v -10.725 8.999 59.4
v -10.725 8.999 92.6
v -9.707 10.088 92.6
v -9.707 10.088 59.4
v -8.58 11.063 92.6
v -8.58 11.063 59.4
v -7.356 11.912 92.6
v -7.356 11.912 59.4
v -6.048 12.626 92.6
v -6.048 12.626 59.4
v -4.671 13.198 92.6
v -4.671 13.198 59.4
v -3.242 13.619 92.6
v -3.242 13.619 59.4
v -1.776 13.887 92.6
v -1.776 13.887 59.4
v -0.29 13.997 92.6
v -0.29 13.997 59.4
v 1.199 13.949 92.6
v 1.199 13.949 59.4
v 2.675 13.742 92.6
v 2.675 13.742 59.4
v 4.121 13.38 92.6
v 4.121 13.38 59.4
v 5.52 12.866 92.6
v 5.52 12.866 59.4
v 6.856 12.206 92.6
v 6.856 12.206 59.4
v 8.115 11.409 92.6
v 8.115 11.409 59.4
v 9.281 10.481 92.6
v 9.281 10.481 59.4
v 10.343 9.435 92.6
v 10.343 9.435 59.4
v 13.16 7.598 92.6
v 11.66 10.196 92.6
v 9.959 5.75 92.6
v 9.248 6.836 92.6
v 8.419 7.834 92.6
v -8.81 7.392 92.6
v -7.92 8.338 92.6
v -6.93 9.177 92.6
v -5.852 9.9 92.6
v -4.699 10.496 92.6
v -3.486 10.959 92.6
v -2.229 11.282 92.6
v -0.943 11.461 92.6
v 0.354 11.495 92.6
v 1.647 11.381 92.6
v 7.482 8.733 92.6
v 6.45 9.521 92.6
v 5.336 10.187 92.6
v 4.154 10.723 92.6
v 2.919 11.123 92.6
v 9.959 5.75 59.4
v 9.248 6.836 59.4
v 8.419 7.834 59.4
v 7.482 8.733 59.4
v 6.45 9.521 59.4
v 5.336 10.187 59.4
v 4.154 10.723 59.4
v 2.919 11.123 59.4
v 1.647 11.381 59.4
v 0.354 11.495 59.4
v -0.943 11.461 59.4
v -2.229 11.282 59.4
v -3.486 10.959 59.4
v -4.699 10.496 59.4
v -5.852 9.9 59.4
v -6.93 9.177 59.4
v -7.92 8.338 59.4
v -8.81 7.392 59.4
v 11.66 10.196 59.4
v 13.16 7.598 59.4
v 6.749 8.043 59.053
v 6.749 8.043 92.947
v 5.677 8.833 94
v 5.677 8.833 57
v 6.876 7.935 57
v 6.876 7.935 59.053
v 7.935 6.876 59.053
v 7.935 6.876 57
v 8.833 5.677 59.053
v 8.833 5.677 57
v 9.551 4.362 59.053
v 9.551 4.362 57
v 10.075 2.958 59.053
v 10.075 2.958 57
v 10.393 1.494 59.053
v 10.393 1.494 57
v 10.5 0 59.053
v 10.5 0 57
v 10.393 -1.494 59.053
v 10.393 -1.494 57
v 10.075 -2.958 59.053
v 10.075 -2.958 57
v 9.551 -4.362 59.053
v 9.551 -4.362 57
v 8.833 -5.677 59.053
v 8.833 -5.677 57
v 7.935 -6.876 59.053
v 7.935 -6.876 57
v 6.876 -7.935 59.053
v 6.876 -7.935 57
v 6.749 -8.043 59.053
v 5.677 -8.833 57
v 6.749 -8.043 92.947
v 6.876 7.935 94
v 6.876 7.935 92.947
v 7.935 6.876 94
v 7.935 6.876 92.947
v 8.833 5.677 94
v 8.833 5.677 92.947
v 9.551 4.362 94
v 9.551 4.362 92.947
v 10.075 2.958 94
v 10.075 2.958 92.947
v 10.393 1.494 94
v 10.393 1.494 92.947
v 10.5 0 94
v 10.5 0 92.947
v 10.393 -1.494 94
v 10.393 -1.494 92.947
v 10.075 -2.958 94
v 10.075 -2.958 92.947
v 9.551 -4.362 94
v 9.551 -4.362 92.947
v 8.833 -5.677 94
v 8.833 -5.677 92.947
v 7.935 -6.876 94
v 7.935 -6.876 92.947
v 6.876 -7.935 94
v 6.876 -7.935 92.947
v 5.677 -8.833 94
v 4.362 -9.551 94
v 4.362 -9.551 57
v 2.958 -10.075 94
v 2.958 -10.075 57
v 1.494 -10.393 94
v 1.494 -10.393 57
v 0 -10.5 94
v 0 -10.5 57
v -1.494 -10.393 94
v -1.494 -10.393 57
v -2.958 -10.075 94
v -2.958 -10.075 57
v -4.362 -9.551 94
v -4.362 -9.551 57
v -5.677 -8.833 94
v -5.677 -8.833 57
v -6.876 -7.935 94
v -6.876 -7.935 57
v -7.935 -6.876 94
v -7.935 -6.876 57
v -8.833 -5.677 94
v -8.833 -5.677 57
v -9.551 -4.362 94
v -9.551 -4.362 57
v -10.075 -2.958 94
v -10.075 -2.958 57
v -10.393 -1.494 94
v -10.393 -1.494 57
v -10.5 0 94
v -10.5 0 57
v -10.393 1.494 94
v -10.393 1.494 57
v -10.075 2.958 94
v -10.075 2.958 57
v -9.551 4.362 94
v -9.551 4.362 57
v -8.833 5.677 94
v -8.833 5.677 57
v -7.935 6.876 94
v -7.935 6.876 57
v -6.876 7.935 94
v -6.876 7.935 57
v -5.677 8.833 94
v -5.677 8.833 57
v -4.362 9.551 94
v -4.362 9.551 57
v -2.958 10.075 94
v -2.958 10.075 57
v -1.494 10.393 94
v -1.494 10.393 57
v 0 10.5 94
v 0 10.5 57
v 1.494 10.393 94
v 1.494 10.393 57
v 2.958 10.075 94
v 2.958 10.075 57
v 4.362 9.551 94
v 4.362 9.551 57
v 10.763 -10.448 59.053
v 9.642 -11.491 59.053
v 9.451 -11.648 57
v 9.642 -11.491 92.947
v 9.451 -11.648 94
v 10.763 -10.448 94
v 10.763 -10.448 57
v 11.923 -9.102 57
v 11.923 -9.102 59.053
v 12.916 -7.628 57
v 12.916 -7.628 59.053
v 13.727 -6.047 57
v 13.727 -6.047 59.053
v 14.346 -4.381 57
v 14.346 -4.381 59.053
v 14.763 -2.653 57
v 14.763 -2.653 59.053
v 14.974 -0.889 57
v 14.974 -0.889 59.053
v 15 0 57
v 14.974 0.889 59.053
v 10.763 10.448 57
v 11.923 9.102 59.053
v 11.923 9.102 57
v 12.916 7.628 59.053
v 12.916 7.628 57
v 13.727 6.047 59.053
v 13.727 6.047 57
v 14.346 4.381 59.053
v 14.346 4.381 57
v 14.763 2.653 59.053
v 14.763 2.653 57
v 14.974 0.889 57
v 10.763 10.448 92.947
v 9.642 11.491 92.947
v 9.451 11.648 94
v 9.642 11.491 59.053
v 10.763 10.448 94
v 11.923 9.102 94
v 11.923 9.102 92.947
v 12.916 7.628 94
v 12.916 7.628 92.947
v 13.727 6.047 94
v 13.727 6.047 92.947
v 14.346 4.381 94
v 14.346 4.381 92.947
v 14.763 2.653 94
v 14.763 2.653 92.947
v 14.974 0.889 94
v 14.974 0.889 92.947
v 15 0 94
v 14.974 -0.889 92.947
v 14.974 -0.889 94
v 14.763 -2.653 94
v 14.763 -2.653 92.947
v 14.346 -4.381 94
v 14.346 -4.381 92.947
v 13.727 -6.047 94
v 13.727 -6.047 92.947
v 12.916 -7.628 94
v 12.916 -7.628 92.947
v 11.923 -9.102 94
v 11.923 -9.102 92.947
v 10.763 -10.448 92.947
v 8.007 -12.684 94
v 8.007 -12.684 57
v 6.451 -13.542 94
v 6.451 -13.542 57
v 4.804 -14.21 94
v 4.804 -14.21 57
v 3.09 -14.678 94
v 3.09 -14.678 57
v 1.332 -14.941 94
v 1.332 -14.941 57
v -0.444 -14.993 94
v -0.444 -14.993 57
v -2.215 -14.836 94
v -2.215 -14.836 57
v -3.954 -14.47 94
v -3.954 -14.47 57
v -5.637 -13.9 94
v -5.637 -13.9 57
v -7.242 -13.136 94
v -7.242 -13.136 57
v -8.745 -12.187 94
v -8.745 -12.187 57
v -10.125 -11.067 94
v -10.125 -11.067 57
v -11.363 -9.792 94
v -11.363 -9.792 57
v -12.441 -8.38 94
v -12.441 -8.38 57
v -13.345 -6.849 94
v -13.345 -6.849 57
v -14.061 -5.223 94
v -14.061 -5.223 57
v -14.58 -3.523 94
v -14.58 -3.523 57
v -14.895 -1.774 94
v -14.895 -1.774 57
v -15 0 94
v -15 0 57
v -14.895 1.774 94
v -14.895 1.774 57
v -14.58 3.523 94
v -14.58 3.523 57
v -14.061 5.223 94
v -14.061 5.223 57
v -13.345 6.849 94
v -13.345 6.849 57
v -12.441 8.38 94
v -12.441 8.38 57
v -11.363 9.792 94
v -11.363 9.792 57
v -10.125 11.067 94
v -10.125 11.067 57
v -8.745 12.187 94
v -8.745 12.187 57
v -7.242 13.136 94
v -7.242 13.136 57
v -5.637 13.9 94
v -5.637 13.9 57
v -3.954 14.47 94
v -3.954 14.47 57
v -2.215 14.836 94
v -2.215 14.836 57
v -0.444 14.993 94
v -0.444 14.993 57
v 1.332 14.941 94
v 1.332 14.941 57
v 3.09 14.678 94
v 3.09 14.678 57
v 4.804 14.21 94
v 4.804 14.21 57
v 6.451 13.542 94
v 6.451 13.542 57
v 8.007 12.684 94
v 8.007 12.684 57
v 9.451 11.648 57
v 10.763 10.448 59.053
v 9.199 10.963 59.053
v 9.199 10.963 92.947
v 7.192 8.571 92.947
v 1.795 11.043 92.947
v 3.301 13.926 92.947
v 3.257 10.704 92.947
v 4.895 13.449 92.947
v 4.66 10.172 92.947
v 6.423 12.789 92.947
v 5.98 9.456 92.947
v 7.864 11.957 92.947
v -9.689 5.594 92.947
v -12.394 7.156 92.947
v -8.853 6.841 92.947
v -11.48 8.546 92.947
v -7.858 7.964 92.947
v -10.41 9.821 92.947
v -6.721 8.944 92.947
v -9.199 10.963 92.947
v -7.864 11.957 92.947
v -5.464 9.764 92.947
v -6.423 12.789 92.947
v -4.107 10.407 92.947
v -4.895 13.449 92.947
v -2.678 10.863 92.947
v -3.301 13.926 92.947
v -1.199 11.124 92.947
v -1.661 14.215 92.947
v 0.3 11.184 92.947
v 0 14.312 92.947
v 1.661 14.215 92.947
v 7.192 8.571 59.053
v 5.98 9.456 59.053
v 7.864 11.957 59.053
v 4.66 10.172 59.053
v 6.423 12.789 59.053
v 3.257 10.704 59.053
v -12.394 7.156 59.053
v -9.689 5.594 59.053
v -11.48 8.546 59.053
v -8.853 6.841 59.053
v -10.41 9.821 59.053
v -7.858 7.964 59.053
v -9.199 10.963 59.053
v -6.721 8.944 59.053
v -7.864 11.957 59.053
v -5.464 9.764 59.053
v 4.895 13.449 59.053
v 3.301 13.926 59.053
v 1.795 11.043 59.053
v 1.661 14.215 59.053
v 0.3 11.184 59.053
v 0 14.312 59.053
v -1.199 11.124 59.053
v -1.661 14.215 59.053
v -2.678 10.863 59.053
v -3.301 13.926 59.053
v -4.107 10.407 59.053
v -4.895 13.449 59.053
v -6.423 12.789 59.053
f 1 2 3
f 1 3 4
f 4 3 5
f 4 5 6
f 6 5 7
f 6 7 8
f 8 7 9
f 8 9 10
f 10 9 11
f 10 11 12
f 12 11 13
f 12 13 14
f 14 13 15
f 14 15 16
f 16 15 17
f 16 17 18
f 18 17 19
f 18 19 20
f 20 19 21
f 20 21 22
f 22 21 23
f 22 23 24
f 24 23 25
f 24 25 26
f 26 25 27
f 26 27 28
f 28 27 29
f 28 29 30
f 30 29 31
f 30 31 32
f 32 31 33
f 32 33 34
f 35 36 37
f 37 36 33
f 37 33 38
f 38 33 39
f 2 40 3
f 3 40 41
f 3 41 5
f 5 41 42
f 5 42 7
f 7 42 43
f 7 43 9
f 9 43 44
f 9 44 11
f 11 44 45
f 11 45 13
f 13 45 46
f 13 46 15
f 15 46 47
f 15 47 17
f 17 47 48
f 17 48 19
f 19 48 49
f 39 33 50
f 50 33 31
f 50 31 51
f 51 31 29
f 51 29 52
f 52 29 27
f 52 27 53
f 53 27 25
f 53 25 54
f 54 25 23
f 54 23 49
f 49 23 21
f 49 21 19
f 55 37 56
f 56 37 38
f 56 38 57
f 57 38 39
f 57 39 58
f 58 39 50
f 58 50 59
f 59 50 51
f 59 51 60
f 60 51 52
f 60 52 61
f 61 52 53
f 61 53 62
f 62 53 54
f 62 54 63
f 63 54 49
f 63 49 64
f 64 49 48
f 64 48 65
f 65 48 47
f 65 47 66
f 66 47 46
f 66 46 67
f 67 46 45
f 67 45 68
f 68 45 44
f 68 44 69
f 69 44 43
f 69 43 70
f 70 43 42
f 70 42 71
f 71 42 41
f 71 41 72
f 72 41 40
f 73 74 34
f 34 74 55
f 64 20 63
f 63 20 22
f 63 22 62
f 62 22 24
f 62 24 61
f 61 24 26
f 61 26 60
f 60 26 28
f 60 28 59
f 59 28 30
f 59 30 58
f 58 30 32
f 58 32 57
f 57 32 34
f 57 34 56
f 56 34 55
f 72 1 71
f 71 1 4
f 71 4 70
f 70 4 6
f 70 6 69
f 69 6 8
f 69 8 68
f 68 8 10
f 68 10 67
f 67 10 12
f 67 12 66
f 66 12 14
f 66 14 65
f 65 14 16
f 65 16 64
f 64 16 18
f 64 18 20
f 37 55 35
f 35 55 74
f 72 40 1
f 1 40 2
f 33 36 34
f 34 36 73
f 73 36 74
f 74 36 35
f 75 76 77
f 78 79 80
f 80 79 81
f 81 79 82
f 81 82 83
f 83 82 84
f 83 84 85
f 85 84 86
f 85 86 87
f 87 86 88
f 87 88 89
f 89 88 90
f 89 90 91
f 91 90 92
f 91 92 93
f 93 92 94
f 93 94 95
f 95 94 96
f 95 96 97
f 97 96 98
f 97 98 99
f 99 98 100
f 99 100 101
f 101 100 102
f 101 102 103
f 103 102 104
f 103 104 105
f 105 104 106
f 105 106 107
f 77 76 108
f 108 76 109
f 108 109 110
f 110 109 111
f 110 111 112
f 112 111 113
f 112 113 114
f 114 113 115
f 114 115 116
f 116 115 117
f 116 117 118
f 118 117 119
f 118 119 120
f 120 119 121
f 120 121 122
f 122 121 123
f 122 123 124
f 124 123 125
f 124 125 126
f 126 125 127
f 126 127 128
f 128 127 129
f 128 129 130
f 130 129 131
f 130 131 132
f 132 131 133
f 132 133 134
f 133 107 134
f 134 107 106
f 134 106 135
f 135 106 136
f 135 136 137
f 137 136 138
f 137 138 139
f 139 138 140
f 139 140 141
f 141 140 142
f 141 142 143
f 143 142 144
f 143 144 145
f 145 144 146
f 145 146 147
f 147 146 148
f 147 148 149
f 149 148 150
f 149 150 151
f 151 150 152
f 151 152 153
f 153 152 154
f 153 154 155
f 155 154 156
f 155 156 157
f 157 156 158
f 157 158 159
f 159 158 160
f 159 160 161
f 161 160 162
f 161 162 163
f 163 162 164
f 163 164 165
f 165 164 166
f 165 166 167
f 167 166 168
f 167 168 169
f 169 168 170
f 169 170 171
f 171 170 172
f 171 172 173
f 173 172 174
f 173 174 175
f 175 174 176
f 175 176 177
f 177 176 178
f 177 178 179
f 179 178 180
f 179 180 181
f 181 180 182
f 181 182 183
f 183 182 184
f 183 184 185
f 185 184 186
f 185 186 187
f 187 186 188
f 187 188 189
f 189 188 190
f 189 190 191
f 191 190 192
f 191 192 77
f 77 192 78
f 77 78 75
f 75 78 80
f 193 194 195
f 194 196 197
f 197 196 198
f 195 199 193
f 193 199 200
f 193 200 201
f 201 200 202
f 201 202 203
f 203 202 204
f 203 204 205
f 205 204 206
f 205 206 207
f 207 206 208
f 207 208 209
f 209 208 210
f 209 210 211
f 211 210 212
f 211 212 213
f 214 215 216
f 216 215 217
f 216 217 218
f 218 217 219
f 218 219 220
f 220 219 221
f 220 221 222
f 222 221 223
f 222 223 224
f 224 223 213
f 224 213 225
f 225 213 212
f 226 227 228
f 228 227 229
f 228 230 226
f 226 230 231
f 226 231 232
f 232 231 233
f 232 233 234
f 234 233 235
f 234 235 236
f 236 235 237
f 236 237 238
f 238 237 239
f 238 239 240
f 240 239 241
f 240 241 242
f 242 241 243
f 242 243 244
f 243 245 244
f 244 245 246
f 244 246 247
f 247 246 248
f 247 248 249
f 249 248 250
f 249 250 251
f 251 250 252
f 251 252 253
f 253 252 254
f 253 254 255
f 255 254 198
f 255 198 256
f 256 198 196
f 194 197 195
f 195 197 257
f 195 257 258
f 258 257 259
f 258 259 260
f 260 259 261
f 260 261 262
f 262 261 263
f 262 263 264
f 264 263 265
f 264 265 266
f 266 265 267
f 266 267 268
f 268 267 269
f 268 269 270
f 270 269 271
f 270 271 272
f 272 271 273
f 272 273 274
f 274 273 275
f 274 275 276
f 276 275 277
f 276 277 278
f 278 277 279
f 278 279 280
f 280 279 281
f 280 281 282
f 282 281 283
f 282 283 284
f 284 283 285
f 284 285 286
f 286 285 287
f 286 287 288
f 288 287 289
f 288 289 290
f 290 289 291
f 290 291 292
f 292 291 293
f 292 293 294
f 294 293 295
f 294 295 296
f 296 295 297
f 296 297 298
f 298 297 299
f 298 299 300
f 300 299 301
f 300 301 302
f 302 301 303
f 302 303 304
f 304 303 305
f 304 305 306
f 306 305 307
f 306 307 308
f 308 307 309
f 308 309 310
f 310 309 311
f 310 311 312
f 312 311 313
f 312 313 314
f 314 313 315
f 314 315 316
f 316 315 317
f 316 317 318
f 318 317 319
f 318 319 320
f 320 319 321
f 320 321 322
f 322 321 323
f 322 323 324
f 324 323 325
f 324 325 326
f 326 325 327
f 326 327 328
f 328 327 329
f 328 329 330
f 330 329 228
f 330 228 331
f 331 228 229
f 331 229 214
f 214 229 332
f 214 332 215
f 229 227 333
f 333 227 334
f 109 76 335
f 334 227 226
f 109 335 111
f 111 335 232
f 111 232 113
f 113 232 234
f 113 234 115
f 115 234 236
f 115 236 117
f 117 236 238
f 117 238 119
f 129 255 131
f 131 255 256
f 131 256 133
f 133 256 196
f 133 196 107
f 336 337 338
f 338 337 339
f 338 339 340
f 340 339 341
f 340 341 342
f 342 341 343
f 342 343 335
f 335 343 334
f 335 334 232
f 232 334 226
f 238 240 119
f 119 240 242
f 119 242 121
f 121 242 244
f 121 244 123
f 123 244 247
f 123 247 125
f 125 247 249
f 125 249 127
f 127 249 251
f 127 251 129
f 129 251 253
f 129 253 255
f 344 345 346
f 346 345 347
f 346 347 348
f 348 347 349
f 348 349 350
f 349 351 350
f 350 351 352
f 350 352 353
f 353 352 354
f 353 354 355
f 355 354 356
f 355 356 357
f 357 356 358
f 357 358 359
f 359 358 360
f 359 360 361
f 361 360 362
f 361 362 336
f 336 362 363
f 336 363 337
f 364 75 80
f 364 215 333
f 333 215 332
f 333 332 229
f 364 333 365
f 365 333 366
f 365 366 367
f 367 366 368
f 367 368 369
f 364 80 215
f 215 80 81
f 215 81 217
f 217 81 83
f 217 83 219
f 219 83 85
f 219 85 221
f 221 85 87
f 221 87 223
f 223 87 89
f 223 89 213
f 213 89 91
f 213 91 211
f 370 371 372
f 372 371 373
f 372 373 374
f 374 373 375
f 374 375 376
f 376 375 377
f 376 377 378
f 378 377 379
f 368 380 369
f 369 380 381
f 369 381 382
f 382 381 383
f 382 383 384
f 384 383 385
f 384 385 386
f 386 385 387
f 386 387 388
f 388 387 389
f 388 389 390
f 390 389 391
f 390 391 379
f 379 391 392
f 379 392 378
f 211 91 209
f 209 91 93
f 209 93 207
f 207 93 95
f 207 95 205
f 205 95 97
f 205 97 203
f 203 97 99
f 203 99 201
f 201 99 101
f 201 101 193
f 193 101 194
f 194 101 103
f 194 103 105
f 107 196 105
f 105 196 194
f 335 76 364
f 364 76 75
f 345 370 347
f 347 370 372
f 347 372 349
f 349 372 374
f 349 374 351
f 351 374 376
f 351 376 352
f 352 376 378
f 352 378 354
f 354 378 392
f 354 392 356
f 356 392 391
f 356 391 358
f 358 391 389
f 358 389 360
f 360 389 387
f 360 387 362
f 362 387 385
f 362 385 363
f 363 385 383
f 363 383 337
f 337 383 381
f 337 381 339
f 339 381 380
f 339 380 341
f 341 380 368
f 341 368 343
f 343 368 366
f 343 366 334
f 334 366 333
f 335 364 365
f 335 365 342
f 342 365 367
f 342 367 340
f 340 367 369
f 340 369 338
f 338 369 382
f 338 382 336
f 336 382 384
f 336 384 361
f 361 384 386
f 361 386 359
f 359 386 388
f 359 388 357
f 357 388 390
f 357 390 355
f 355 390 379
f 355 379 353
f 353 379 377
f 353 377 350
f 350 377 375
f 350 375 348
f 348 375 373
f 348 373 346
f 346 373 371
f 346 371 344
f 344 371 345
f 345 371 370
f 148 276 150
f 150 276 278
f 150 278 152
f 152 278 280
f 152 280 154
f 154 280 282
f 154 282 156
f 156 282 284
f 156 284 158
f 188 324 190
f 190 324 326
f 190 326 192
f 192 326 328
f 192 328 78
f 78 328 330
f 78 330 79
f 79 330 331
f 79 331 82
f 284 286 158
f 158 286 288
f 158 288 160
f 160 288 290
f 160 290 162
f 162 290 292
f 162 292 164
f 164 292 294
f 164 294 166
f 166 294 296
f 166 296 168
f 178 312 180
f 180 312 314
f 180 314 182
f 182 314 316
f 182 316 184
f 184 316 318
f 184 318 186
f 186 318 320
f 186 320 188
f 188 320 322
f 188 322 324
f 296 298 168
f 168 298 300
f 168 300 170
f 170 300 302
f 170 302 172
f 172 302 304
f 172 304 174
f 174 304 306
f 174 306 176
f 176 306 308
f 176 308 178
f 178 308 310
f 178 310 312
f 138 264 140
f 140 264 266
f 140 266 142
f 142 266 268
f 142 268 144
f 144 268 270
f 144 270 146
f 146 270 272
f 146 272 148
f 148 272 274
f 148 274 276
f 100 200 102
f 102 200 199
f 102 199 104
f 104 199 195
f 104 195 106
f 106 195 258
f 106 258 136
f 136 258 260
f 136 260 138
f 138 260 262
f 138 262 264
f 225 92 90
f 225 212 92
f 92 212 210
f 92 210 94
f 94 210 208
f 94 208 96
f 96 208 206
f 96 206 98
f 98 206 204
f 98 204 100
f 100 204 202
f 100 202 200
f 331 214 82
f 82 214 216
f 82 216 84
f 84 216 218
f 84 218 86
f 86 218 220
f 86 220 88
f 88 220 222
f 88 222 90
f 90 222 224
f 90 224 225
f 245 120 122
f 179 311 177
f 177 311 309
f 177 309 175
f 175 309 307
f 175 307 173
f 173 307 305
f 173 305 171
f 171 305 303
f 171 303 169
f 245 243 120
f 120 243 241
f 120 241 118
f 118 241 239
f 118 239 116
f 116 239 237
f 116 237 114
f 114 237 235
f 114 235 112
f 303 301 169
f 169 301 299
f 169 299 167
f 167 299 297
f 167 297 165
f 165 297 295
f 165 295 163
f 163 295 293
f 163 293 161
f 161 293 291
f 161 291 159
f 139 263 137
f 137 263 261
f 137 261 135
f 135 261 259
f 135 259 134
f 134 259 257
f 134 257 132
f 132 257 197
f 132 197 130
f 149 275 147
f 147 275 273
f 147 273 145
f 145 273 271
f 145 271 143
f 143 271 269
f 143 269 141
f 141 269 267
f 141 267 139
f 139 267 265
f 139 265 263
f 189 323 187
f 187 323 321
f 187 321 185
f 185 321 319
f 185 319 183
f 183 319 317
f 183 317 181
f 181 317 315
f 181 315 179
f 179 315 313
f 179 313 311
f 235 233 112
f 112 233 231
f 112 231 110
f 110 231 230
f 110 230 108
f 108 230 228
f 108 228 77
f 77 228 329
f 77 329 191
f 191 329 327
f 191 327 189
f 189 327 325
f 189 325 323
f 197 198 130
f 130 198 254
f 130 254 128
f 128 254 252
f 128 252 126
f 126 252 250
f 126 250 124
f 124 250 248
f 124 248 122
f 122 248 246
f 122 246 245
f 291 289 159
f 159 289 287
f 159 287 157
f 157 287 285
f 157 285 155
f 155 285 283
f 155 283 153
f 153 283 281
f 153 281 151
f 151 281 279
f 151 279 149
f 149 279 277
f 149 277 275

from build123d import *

# Parameters (mm, degrees)
ESQUISSE1_R                                   = 15
ESQUISSE1_R_2                                 = 10.5
BOSS_EXTRU_3_DEPTH                            = 100
ESQUISSE9_W                                   = 5
ESQUISSE9_H                                   = 2
ENL_VEMENT_START                              = 10
ENL_VEMENT_DE_MATI_RE_R_VOLUTION2_DEPTH       = 5
R_P_TITION_CIRCULAIRE1_COUNT                  = 4
ESQUISSE11_R                                  = 2
ESQUISSE12_W                                  = 4
ESQUISSE12_H                                  = 5
ESQUISSE13_W                                  = 3
ESQUISSE13_H                                  = 5
CONG_2_R                                      = 1
CONG_3_R                                      = 1
CONG_4_R                                      = 1
CONG_5_R                                      = 1
ENL_V_MAT_EXTRU_2_DEPTH                       = 103.824588457
ENL_V_MAT_EXTRU_2_DEPTH_BACK                  = 103.824588457
ESQUISSE16_R                                  = 1.75
ESQUISSE19_W                                  = 13.434398634
ESQUISSE19_H                                  = 33.894617108
ENL_VEMENT_DE_MATI_RE_R_VOLUTION4_ANGLE       = 50
ENL_VEMENT_DE_MATI_RE_R_VOLUTION4_OTHER_ANGLE = 50
ESQUISSE20_W                                  = 33.894617108
ESQUISSE20_H                                  = 2.5
ESQUISSE25_R                                  = 1.75
ENL_V_MAT_EXTRU_3_DEPTH                       = 103.824588457
BOSS_EXTRU_4_REACH                            = 65.719
ESQUISSE29_W                                  = 33.894617108
ESQUISSE29_H                                  = 3.1234995
ENL_VEMENT_DE_MATI_RE_R_VOLUTION7_ANGLE       = 100
ESQUISSE32_W                                  = 33.2
ESQUISSE32_H                                  = 2.5
R_VOLUTION4_ANGLE                             = 20
R_VOLUTION4_OTHER_WAY_ANGLE                   = 90
BOSS_EXTRU_5_DEPTH                            = 2
BOSS_EXTRU_5_DEPTH_BACK                       = 1
ESQUISSE34_W                                  = 3
ESQUISSE34_H                                  = 33.2
ESQUISSE35_R                                  = 19
BOSS_EXTRU_6_DEPTH                            = 10
ESQUISSE36_R                                  = 10
ESQUISSE36_R_2                                = 7.5
BOSS_EXTRU_7_DEPTH                            = 50
ESQUISSE39_R                                  = 5
BOSS_EXTRU_8_DEPTH                            = 21
ESQUISSE41_R                                  = 23.968073598
ENL_V_MAT_EXTRU_4_DEPTH                       = 57
ESQUISSE42_R                                  = 25.631074034
ENL_V_MAT_EXTRU_5_DEPTH                       = 66


# Read off the part's stored shape, not the designer's step: Enlèvement de matière-Révolution2
with BuildPart() as part:
    # Esquisse1 → Boss.-Extru.3 (new body)
    with BuildSketch(Plane.XY):
        Circle(ESQUISSE1_R)
        Circle(ESQUISSE1_R_2, mode=Mode.SUBTRACT)
    extrude(amount=BOSS_EXTRU_3_DEPTH)

    # Esquisse9 → Enlèvement de matière-Révolution1 (revolve, cut)
    with BuildSketch(Plane(origin=(0, 0, 0), x_dir=(0, 0, -1), z_dir=(1, 0, 0)), mode=Mode.PRIVATE) as enl_vement_de_mati_re_r_volution1_sk:
        with Locations((-7.5, -15)):
            Rectangle(ESQUISSE9_W, ESQUISSE9_H)
    revolve(enl_vement_de_mati_re_r_volution1_sk.sketch.rotate(Axis((0, 0, 100), (0, 0, -1)), 270), axis=Axis((0, 0, 100), (0, 0, -1)), mode=Mode.SUBTRACT)

    # Enlèvement de matière-Révolution2 outlin → Enlèvement de matière-Révolution2 (cut)
    with BuildSketch(Plane.XY.offset(ENL_VEMENT_START)):
        with BuildLine():
            Line((-2.431074487, -13.787308542), (-2.604722665, -14.772116295))
            ThreePointArc((-2.604722665, -14.772116295), (0, -15), (2.604722665, -14.772116295))
            Line((2.604722665, -14.772116295), (2.431074487, -13.787308542))
            ThreePointArc((2.431074487, -13.787308542), (0, -14), (-2.431074487, -13.787308542))
        make_face()
    enl_vement_de_mati_re_r_volution2 = extrude(amount=ENL_VEMENT_DE_MATI_RE_R_VOLUTION2_DEPTH, mode=Mode.SUBTRACT)

    # Répétition circulaire1: Enlèvement de matière-Révolution2 ×4 about axis
    r_p_tition_circulaire1_axis = Axis((0, 0, 0), (0, 0, 1))
    for i in range(1, R_P_TITION_CIRCULAIRE1_COUNT):
        add(enl_vement_de_mati_re_r_volution2.rotate(r_p_tition_circulaire1_axis, i * 360 / R_P_TITION_CIRCULAIRE1_COUNT), mode=Mode.SUBTRACT)

    # Esquisse11 → Enlèvement de matière-Révolution3 (revolve, cut)
    with BuildSketch(Plane(origin=(0, 0, 0), x_dir=(1, 0, 0), z_dir=(0, 1, 0)), mode=Mode.PRIVATE) as enl_vement_de_mati_re_r_volution3_sk:
        with Locations((15, -50)):
            Circle(ESQUISSE11_R)
    revolve(enl_vement_de_mati_re_r_volution3_sk.sketch.rotate(Axis((0, 0, 100), (0, 0, -1)), 190), axis=Axis((0, 0, 100), (0, 0, -1)), mode=Mode.SUBTRACT)

    # Esquisse12 → Révolution1 (revolve)
    with BuildSketch(Plane(origin=(0, 0, 0), x_dir=(1, 0, 0), z_dir=(0, 1, 0))):
        with Locations((14.924774562, -54.5)):
            Rectangle(ESQUISSE12_W, ESQUISSE12_H)
    revolve(axis=Axis((0, 0, 100), (0, 0, -1)))

    # Esquisse13 → Révolution2 (revolve)
    with BuildSketch(Plane(origin=(0, 0, 0), x_dir=(1, 0, 0), z_dir=(0, 1, 0)), mode=Mode.PRIVATE) as r_volution2_sk:
        with Locations((15, -97.5)):
            Rectangle(ESQUISSE13_W, ESQUISSE13_H)
    revolve(r_volution2_sk.sketch.rotate(Axis((0, 0, 100), (0, 0, -1)), 190), axis=Axis((0, 0, 100), (0, 0, -1)))

    # Congé2
    cong_2_edges = [part.edges().sort_by_distance(p)[0] for p in [
        (-16.924774562, 0, 52),
    ]]
    fillet(cong_2_edges, radius=CONG_2_R)

    # Congé3
    cong_3_edges = [part.edges().sort_by_distance(p)[0] for p in [
        (-16.924774562, 0, 57),
    ]]
    fillet(cong_3_edges, radius=CONG_3_R)

    # Congé4
    cong_4_edges = [part.edges().sort_by_distance(p)[0] for p in [
        (16.249327925, -2.865194932, 95),
        (16.249327925, -2.865194932, 100),
    ]]
    fillet(cong_4_edges, radius=CONG_4_R)

    # Congé5
    cong_5_edges = [part.edges().sort_by_distance(p)[0] for p in [
        (-1.307336141, -14.942920471, 48),
    ]]
    fillet(cong_5_edges, radius=CONG_5_R)

    # Esquisse16 → Enlèv. mat.-Extru.2 (cut, two sides: drawn at the far end of the back side and taken through both)
    with BuildSketch(Plane(origin=(0, 0, 0), x_dir=(0, 0, -1), z_dir=(1, 0, 0)).offset(-ENL_V_MAT_EXTRU_2_DEPTH_BACK)):
        with Locations((-12.5, 0)):
            Circle(ESQUISSE16_R)
    extrude(amount=ENL_V_MAT_EXTRU_2_DEPTH + ENL_V_MAT_EXTRU_2_DEPTH_BACK, mode=Mode.SUBTRACT)

    # Esquisse19 → Enlèvement de matière-Révolution4 (revolve, cut)
    with BuildSketch(Plane(origin=(0, 0, 0), x_dir=(1, 0, 0), z_dir=(0, 1, 0))):
        with Locations((15, -76)):
            Rectangle(ESQUISSE19_W, ESQUISSE19_H)
    revolve(axis=Axis((0, 0, 100), (0, 0, -1)), revolution_arc=ENL_VEMENT_DE_MATI_RE_R_VOLUTION4_ANGLE, mode=Mode.SUBTRACT)

    # Esquisse19 → Enlèvement de matière-Révolution4 other (revolve, cut)
    with BuildSketch(Plane(origin=(0, 0, 0), x_dir=(1, 0, 0), z_dir=(0, 1, 0))):
        with Locations((15, -76)):
            Rectangle(ESQUISSE19_W, ESQUISSE19_H)
    revolve(axis=Axis((0, 0, 100), (0, 0, 1)), revolution_arc=ENL_VEMENT_DE_MATI_RE_R_VOLUTION4_OTHER_ANGLE, mode=Mode.SUBTRACT)

    # Esquisse20 → Enlèvement de matière-Révolution5 (revolve, cut)
    with BuildSketch(Plane(origin=(0, 0, 0), x_dir=(0, 0, -1), z_dir=(0.7660444431189792, 0.642787609686538, 0)), mode=Mode.PRIVATE) as enl_vement_de_mati_re_r_volution5_sk:
        with Locations((-76, -10.5)):
            Rectangle(ESQUISSE20_W, ESQUISSE20_H)
    revolve(enl_vement_de_mati_re_r_volution5_sk.sketch.rotate(Axis((0, 0, 100), (0, 0, -1)), 140), axis=Axis((0, 0, 100), (0, 0, -1)), mode=Mode.SUBTRACT)

    # Esquisse25 → Enlèv. mat.-Extru.3 (cut, through all)
    with BuildSketch(Plane(origin=(0, 0, 0), x_dir=(0, 0, -1), z_dir=(1, 0, 0))):
        with Locations(Location((-97.5, 0, 0), (0, 0, 180))):
            Circle(ESQUISSE25_R)
        with Locations(Location((-54.5, 0, 0), (0, 0, 180))):
            Circle(ESQUISSE25_R)
    extrude(amount=ENL_V_MAT_EXTRU_3_DEPTH, mode=Mode.SUBTRACT)

    # Esquisse28 → Boss.-Extru.4 (add, up to next)
    with BuildSketch(Plane.XY.offset(59.052691446), mode=Mode.PRIVATE) as boss_extru_4_sk1:
        with BuildLine():
            Line((6.749269902, 8.043466653), (7.552754414, 9.001022207))
            ThreePointArc((7.552754414, 9.001022207), (-11.75, 0), (7.552754414, -9.001022207))
            Line((7.552754414, -9.001022207), (6.749269902, -8.043466653))
            ThreePointArc((6.749269902, -8.043466653), (-10.5, 0), (6.749269902, 8.043466653))
        make_face()
    boss_extru_4_tool1 = extrude(boss_extru_4_sk1.sketch, amount=BOSS_EXTRU_4_REACH, mode=Mode.PRIVATE) - part.part
    add(boss_extru_4_tool1.solids().sort_by_distance((-10.804113, 0, 59.052691))[0])

    # Esquisse29 → Enlèvement de matière-Révolution7 (revolve, cut)
    with BuildSketch(Plane(origin=(0, 0, 0), x_dir=(0, 0, -1), z_dir=(0.7660444431189792, -0.6427876096865379, 0))):
        with Locations((-76, 12.75)):
            Rectangle(ESQUISSE29_W, ESQUISSE29_H)
    revolve(axis=Axis((0, 0, 100), (0, 0, 1)), revolution_arc=ENL_VEMENT_DE_MATI_RE_R_VOLUTION7_ANGLE, mode=Mode.SUBTRACT)

    # Esquisse35 → Boss.-Extru.6 (add)
    with BuildSketch(Plane.XY.offset(100)):
        Circle(ESQUISSE35_R)
    extrude(amount=BOSS_EXTRU_6_DEPTH)

    # Esquisse36 → Boss.-Extru.7 (add)
    with BuildSketch(Plane.XY.offset(110)):
        Circle(ESQUISSE36_R)
        Circle(ESQUISSE36_R_2, mode=Mode.SUBTRACT)
    extrude(amount=BOSS_EXTRU_7_DEPTH)

    # Esquisse39 → Boss.-Extru.8 (add)
    with BuildSketch(Plane(origin=(0, 0, 0), x_dir=(0, 0, -1), z_dir=(1, 0, 0))):
        with Locations((-105, 0)):
            Circle(ESQUISSE39_R)
    extrude(amount=BOSS_EXTRU_8_DEPTH)

    # Esquisse40 → Enlèvement de matière-Révolution9 (revolve, cut)
    with BuildSketch(Plane(origin=(21, 0, 0), x_dir=(0, 0, -1), z_dir=(1, 0, 0))):
        with BuildLine():
            Line((-107.5, 0), (-102.5, 0))
            ThreePointArc((-102.5, 0), (-105, -2.5), (-107.5, 0))
        make_face()
    revolve(axis=Axis((21, 0, 107.5), (0, 0, -1)), mode=Mode.SUBTRACT)

    # Esquisse41 → Enlèv. mat.-Extru.4 (cut)
    with BuildSketch(Plane.XY):
        Circle(ESQUISSE41_R)
    extrude(amount=ENL_V_MAT_EXTRU_4_DEPTH, mode=Mode.SUBTRACT)

    # Esquisse42 → Enlèv. mat.-Extru.5 (cut)
    with BuildSketch(Plane.XY.offset(160)):
        Circle(ESQUISSE42_R)
    extrude(amount=-ENL_V_MAT_EXTRU_5_DEPTH, mode=Mode.SUBTRACT)


with BuildPart() as body_2:
    # Esquisse32 → Révolution4 (revolve)
    with BuildSketch(Plane(origin=(0, 0, 0), x_dir=(0, 0, -1), z_dir=(0.7660444431189792, -0.6427876096865379, 0))):
        with Locations((-76, 12.75)):
            Rectangle(ESQUISSE32_W, ESQUISSE32_H)
    revolve(axis=Axis((0, 0, 100), (0, 0, -1)), revolution_arc=R_VOLUTION4_ANGLE)

    # Esquisse32 → Révolution4 other way (revolve)
    with BuildSketch(Plane(origin=(0, 0, 0), x_dir=(0, 0, -1), z_dir=(0.7660444431189792, -0.6427876096865379, 0))):
        with Locations((-76, 12.75)):
            Rectangle(ESQUISSE32_W, ESQUISSE32_H)
    revolve(axis=Axis((0, 0, 100), (0, 0, 1)), revolution_arc=R_VOLUTION4_OTHER_WAY_ANGLE)

    # Esquisse34 → Boss.-Extru.5 (add, two sides: drawn at the far end of the back side and taken through both)
    with BuildSketch(Plane(origin=(11.428132998, 6.598035663, 0), x_dir=(-0.5000000000000011, 0.8660254037844382, -9.071134608832366e-15), z_dir=(0.8660254037844382, 0.5000000000000011, 1.7457406694215556e-15)).offset(-BOSS_EXTRU_5_DEPTH_BACK)):
        with Locations((1.5, 76)):
            Rectangle(ESQUISSE34_W, ESQUISSE34_H)
    extrude(amount=BOSS_EXTRU_5_DEPTH + BOSS_EXTRU_5_DEPTH_BACK)


solid = Compound([part.part, body_2.part])
